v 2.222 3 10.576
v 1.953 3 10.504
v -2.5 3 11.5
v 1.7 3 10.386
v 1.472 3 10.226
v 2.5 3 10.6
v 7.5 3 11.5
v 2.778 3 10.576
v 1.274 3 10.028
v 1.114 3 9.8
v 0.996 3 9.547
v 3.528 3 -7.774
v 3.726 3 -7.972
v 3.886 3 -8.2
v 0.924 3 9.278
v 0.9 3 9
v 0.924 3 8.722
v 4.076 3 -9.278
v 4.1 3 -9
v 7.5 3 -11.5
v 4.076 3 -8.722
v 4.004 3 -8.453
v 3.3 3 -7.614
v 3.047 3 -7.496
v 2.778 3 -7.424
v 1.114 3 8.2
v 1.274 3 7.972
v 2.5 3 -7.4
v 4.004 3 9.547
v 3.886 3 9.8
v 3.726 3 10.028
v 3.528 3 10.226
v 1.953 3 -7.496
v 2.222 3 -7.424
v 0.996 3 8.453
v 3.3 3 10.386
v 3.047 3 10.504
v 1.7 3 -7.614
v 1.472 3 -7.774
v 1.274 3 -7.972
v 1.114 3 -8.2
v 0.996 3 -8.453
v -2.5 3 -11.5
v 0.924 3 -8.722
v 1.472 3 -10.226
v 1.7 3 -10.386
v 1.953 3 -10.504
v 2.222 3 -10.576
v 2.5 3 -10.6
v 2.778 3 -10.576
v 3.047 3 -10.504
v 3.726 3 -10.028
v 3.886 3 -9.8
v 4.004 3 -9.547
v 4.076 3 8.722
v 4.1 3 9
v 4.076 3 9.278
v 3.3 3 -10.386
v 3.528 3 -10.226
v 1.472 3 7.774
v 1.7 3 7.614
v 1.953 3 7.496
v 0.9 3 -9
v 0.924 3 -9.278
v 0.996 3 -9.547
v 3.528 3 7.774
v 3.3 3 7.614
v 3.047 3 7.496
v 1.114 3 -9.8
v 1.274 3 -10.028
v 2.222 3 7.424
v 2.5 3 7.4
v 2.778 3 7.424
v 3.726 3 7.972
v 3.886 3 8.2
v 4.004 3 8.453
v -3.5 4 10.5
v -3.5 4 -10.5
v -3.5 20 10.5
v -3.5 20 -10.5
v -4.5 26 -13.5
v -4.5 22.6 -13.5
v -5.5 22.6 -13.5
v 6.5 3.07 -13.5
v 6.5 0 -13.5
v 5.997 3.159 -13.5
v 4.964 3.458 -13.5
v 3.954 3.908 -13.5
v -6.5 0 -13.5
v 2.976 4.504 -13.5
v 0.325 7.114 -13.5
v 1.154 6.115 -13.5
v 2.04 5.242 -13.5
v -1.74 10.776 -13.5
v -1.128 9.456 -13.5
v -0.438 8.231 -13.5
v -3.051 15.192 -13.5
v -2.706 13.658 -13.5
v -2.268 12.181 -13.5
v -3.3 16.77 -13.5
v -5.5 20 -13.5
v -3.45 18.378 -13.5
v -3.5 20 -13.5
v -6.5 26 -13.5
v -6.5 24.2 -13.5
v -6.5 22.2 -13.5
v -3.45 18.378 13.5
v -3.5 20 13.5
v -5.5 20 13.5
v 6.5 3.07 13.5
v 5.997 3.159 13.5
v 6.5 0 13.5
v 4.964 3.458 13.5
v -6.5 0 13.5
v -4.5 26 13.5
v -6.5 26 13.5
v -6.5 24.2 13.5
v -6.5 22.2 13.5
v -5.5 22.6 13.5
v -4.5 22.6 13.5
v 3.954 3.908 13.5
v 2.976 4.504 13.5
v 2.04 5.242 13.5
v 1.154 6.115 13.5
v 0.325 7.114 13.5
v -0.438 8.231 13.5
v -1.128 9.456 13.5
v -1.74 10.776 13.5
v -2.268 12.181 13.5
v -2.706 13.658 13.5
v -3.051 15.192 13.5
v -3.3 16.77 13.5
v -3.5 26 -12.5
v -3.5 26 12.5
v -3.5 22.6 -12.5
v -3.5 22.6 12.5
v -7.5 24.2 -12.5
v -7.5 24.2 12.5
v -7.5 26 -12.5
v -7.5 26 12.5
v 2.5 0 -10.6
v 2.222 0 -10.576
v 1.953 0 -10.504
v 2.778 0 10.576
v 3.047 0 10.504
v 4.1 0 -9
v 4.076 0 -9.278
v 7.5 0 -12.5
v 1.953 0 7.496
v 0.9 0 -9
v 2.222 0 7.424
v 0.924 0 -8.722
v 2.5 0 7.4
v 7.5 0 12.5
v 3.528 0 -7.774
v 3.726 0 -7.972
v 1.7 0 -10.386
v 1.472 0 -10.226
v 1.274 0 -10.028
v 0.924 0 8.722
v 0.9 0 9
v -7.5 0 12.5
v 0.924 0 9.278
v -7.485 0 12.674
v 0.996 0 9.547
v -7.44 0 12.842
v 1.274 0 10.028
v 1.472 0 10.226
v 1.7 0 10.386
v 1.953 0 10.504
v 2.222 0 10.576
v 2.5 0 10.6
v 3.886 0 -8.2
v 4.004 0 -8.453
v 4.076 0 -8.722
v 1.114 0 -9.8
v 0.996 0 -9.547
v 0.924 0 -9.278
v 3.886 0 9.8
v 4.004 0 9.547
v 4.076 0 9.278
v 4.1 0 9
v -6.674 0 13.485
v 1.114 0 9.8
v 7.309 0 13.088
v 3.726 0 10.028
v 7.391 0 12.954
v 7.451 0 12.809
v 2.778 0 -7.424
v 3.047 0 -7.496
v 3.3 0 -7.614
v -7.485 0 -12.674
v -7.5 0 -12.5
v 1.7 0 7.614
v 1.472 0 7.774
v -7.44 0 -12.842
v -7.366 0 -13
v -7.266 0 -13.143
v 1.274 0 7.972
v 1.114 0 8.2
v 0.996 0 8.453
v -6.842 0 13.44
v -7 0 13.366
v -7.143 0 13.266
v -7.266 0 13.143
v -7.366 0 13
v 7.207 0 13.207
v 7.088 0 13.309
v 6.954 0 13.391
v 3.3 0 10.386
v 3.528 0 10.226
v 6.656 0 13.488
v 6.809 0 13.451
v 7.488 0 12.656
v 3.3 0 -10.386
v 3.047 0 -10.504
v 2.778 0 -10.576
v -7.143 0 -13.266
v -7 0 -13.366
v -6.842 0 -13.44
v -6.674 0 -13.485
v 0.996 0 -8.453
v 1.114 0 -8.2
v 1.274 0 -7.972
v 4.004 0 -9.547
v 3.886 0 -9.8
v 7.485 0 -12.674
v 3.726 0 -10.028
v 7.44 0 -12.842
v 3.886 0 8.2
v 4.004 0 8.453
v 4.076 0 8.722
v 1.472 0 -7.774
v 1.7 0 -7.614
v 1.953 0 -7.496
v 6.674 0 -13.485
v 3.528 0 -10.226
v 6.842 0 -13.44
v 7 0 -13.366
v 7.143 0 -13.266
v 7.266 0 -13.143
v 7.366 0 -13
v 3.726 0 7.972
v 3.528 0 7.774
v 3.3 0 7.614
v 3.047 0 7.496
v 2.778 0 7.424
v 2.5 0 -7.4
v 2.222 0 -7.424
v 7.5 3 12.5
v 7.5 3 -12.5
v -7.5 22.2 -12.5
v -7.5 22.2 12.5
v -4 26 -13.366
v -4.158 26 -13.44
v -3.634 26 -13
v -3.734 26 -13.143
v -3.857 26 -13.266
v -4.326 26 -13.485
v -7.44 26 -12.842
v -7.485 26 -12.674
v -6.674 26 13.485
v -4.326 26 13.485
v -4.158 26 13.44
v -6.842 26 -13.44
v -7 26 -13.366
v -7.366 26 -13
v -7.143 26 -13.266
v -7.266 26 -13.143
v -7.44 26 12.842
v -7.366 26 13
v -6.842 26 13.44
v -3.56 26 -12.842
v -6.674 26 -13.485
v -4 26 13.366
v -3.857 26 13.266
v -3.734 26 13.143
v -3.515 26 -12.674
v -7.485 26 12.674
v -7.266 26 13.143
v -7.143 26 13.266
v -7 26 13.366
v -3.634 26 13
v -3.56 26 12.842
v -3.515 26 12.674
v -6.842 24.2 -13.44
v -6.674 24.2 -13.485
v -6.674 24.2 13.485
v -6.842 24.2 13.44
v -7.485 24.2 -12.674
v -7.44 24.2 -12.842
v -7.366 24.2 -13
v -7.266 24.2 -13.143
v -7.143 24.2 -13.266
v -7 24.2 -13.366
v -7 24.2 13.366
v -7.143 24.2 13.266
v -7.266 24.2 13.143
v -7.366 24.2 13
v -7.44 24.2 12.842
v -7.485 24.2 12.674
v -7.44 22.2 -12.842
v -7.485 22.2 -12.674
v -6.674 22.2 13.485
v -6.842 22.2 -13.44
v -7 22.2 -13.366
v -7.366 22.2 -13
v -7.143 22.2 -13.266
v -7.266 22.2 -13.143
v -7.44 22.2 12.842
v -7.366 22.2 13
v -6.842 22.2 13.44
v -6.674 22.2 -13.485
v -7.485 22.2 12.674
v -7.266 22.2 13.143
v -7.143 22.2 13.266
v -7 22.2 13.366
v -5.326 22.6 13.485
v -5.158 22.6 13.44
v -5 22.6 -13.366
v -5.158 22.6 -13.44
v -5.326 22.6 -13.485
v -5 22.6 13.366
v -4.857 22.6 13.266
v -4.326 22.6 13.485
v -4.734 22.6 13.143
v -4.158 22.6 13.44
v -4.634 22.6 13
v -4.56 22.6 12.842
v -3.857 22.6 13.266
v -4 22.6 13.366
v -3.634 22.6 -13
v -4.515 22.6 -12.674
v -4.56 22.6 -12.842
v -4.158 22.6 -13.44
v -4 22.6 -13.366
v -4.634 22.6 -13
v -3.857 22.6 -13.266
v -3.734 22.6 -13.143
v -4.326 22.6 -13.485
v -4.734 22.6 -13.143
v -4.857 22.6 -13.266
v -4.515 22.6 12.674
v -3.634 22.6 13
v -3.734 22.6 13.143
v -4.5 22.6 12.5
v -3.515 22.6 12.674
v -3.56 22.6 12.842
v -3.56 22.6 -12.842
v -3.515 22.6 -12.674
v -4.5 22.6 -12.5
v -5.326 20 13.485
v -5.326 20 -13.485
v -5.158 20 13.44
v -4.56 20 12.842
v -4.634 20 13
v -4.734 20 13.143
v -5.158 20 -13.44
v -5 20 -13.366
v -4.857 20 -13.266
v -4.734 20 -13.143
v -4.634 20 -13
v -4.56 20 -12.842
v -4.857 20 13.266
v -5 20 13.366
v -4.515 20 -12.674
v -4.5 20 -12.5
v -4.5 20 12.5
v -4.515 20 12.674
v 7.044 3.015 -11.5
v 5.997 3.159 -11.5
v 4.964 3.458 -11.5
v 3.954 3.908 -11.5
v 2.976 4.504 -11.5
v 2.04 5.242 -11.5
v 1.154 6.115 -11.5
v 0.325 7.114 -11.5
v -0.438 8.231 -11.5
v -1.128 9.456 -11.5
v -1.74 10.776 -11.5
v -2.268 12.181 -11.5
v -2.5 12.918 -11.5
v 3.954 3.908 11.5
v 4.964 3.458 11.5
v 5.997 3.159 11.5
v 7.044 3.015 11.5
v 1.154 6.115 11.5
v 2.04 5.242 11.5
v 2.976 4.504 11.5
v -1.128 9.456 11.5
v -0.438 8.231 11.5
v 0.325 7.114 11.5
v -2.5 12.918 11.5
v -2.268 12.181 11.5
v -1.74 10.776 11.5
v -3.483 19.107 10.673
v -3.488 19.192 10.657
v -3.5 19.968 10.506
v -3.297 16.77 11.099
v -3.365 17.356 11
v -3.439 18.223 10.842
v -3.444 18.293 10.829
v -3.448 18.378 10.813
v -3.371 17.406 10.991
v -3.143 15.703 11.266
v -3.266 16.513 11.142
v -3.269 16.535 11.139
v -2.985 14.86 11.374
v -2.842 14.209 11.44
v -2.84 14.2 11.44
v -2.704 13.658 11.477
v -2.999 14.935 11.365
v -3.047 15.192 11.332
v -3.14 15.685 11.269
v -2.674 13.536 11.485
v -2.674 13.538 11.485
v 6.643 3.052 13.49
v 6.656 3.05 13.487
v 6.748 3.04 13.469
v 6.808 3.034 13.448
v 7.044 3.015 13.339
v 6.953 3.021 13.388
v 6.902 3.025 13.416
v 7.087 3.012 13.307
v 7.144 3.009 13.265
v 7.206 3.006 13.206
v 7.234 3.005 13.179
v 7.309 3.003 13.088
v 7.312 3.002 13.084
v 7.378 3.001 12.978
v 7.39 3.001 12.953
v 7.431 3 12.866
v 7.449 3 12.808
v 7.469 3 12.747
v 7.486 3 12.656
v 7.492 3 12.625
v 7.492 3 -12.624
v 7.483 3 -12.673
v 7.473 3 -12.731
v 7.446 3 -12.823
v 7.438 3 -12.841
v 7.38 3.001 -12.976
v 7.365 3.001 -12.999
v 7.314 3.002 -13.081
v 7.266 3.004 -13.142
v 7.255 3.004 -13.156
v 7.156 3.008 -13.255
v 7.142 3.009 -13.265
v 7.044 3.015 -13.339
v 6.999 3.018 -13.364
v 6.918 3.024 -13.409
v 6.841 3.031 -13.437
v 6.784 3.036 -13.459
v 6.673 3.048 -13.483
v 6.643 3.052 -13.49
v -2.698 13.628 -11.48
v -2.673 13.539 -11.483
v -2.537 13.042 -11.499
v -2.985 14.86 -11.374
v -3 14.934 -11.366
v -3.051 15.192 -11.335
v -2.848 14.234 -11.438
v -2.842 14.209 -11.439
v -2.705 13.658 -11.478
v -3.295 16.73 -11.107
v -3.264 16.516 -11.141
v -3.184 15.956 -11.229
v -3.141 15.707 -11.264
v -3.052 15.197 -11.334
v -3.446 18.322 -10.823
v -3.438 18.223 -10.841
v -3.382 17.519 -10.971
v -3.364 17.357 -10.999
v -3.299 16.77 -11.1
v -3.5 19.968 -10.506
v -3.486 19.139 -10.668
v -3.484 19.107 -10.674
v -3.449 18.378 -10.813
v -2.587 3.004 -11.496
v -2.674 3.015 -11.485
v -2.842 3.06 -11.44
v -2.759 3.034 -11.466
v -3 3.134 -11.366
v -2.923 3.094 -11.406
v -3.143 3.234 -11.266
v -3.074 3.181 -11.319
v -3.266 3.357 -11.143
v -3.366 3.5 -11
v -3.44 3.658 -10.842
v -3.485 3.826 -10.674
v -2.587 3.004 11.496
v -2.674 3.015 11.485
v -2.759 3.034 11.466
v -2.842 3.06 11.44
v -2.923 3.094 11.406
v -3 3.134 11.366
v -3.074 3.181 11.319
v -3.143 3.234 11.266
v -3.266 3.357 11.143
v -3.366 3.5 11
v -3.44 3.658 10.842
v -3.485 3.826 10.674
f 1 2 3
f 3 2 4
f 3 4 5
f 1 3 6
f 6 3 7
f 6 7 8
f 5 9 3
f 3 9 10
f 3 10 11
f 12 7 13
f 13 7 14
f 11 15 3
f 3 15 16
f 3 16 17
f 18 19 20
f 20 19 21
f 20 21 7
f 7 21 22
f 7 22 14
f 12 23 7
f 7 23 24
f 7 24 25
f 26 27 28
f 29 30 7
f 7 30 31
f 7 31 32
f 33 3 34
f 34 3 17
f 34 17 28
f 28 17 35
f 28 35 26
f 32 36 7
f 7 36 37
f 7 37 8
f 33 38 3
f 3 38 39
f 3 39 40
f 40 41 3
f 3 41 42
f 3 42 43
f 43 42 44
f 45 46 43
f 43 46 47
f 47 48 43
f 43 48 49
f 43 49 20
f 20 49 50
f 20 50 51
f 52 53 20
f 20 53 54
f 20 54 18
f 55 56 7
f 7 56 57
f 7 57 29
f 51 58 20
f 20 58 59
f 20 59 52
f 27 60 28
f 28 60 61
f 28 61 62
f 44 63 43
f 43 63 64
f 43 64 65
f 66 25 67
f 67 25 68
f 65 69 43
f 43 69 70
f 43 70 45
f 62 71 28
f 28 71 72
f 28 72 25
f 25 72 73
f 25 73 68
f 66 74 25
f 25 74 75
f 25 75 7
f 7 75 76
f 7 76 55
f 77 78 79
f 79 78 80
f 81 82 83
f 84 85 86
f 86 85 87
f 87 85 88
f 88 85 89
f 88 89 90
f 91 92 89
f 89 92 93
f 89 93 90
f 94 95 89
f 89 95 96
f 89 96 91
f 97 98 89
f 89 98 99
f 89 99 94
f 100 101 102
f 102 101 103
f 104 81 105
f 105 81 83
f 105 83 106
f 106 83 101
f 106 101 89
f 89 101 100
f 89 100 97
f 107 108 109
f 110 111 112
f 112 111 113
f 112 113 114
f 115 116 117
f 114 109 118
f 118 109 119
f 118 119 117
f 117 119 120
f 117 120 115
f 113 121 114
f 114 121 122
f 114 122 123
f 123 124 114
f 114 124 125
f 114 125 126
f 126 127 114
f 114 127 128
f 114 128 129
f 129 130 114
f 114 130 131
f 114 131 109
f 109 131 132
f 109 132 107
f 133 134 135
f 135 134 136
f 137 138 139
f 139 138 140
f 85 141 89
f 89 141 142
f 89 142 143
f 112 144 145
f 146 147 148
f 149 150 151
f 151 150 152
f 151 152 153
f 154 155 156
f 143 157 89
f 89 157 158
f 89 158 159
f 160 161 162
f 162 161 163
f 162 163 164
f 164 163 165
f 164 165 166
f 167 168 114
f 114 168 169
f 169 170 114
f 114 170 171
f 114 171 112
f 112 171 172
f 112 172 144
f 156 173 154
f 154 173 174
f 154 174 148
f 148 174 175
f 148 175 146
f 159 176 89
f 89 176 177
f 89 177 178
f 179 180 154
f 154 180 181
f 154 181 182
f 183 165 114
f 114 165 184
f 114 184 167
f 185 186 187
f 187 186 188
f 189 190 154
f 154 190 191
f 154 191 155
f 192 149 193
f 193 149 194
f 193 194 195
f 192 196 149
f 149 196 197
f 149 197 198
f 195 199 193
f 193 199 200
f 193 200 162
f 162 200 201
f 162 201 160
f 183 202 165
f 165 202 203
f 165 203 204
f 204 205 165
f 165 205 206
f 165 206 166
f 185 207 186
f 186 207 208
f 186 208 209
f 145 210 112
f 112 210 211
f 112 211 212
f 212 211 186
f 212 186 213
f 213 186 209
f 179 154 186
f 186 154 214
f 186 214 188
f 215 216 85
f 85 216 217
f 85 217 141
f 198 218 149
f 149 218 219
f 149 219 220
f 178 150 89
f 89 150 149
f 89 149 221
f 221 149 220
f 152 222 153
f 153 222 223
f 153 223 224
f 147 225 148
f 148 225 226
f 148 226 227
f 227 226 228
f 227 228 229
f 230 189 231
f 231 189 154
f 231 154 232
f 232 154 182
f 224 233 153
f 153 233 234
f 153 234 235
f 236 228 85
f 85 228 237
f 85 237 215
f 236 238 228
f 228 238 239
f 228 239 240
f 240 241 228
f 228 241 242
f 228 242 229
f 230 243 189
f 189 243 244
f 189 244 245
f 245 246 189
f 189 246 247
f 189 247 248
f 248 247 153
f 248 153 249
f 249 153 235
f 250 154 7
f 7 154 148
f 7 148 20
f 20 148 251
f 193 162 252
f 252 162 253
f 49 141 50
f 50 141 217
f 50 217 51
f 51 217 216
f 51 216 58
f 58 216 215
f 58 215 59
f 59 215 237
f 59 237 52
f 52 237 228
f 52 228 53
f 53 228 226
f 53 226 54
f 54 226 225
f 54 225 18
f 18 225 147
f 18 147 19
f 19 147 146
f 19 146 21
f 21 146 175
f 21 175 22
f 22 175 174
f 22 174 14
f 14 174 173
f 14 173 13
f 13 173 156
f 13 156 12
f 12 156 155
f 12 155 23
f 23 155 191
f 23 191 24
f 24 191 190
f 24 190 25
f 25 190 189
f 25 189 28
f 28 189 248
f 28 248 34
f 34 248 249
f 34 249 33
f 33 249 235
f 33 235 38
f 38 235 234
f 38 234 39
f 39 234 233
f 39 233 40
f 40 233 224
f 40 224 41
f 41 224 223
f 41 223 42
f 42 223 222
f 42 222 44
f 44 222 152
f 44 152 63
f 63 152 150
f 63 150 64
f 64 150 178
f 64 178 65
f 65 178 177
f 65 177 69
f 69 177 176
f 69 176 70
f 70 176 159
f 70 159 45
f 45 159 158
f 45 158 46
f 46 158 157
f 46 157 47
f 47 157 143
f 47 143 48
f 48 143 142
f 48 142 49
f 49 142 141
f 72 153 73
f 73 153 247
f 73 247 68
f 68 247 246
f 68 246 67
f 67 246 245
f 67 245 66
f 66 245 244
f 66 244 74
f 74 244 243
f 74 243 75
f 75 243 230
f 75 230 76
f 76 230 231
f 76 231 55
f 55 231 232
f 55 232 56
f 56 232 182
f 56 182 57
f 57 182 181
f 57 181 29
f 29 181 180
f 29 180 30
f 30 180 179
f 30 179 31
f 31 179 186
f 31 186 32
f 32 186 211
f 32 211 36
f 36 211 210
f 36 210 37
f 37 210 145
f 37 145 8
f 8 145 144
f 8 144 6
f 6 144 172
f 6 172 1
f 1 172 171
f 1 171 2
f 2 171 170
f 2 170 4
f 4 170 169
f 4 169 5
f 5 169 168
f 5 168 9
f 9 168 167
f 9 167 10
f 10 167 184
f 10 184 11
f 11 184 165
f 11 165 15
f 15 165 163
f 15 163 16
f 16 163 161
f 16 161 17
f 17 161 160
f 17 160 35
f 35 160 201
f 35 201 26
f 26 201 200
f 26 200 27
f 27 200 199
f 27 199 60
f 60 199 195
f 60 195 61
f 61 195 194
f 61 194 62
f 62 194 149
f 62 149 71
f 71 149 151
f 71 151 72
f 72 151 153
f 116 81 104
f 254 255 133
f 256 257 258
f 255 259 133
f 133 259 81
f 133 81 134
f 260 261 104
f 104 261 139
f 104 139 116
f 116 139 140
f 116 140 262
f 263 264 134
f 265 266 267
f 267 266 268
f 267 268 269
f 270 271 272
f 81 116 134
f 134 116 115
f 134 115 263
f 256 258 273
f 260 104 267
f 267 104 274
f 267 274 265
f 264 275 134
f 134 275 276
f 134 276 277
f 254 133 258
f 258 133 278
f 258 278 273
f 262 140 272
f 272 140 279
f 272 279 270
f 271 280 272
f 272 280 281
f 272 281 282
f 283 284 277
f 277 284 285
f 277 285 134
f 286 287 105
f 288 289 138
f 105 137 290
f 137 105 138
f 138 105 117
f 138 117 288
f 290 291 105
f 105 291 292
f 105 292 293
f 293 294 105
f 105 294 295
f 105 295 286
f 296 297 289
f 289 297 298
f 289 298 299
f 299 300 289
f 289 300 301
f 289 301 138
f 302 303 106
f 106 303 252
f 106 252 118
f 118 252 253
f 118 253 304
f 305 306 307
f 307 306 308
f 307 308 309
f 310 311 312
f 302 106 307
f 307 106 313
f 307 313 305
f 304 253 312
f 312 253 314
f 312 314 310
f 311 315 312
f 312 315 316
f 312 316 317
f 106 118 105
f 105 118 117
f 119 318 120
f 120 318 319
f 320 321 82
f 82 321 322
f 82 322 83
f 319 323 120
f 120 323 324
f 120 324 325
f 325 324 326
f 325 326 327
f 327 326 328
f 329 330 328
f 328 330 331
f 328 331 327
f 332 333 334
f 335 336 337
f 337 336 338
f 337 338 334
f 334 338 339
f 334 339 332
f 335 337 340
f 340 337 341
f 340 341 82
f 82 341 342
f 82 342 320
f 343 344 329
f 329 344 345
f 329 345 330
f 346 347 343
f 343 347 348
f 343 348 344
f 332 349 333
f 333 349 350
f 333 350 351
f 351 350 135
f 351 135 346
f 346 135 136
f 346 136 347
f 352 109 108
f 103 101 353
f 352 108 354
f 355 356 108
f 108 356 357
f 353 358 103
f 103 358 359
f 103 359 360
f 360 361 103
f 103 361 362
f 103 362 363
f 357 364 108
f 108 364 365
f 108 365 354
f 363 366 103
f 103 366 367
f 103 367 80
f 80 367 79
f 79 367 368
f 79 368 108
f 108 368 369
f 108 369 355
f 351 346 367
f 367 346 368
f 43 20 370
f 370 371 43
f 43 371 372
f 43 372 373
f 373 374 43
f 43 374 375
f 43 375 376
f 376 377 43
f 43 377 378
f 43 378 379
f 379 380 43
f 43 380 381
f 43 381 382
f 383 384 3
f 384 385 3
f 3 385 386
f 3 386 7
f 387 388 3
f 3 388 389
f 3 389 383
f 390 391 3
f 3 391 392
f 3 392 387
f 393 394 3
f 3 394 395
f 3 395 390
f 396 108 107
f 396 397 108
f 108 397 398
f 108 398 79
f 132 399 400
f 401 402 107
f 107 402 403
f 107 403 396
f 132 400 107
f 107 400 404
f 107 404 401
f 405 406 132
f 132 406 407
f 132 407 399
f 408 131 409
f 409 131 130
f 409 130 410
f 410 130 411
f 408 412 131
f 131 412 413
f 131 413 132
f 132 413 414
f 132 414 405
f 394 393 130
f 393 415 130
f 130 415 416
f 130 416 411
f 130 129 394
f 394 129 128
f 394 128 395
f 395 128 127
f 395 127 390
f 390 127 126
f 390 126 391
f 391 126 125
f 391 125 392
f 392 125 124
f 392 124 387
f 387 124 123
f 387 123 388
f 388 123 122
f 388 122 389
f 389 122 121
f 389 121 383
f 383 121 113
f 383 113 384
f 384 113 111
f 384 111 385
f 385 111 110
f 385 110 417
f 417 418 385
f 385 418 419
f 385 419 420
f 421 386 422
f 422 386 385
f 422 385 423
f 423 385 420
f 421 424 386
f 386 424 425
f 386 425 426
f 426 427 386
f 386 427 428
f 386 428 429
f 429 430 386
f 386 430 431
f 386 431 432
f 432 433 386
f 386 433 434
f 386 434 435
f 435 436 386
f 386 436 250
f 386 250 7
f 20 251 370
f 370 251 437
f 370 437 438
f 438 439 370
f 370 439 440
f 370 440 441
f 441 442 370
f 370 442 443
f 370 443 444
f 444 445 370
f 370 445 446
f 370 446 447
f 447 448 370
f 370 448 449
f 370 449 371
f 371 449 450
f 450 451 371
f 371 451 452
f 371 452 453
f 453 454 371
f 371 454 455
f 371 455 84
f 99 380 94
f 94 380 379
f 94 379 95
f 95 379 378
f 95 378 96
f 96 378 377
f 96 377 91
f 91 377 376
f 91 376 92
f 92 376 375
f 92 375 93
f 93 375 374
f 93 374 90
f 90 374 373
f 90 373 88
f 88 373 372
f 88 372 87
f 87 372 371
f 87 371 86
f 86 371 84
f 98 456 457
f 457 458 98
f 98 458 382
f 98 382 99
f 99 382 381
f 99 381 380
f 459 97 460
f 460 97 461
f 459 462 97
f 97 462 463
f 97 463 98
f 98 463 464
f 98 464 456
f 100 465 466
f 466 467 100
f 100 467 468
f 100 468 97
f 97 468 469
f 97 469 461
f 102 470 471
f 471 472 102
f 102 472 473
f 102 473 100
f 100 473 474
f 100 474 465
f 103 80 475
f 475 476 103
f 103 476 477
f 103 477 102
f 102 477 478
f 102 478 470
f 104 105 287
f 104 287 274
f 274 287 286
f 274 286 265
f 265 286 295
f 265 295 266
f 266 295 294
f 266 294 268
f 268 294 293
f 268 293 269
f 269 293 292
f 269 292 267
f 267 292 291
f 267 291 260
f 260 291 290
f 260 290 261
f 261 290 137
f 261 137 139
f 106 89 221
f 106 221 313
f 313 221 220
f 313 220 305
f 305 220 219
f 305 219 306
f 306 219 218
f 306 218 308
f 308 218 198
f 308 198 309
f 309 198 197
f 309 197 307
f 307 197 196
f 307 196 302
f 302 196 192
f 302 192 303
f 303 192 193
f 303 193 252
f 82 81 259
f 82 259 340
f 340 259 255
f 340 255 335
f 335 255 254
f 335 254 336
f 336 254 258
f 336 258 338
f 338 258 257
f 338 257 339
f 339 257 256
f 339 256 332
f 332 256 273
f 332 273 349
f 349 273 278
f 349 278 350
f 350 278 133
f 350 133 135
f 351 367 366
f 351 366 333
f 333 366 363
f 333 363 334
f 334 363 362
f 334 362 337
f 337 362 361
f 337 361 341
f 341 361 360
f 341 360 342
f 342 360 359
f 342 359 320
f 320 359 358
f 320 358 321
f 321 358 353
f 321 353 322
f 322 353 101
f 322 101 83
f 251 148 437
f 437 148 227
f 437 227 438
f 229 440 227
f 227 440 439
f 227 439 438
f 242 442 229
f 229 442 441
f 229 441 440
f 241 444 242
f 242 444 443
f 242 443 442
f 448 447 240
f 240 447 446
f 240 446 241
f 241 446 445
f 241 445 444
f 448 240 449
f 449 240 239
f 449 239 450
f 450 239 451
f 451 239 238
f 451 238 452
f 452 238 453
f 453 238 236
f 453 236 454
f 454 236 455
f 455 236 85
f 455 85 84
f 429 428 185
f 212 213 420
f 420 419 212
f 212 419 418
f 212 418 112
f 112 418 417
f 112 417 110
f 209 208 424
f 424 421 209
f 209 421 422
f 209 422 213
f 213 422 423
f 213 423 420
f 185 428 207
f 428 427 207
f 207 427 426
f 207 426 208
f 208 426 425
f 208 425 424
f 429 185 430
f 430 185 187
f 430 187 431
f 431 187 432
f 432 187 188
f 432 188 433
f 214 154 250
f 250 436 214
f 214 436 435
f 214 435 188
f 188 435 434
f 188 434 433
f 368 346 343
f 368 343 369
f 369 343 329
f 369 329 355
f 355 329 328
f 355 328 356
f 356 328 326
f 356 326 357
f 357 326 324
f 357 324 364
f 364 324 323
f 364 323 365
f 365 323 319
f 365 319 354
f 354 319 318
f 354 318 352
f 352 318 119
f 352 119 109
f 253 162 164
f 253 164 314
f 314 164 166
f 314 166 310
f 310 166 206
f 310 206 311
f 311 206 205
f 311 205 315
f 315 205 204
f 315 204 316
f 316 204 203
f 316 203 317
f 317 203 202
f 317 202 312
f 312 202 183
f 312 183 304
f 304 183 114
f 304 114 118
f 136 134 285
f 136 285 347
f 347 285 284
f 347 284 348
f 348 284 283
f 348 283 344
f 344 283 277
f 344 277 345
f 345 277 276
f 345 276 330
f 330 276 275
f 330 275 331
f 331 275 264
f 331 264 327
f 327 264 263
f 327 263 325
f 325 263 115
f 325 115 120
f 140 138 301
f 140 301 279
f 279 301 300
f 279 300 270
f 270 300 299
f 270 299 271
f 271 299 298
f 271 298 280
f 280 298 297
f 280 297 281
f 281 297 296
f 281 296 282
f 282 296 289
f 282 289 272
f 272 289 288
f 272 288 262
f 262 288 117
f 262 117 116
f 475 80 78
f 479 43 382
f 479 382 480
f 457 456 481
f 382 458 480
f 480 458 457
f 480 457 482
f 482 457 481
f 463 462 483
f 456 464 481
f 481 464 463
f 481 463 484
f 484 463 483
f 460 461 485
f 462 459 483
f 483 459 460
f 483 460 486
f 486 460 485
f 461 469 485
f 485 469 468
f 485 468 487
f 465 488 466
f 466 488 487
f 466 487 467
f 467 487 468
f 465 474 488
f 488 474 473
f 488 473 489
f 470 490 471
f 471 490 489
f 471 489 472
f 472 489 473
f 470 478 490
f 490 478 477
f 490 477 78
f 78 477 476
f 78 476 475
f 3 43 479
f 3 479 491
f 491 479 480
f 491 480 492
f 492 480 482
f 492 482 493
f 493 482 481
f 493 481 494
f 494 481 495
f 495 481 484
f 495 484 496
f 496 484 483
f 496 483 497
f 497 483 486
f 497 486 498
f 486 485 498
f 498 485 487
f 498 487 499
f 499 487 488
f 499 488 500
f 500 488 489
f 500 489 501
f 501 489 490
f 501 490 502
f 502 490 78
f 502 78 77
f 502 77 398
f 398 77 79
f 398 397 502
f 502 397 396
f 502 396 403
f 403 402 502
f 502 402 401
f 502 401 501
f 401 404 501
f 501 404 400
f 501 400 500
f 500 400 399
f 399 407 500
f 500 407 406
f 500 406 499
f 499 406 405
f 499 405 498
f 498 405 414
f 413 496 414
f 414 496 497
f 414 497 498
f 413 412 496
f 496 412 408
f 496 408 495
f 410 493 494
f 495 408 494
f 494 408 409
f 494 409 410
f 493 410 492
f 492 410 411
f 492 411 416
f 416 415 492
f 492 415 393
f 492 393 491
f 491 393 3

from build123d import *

# Parameters (mm, degrees)
SKETCH1_W               = 15
SKETCH1_H               = 27
SKETCH1_R               = 1.6
BOSS_EXTRUDE1_DEPTH     = 3
SKETCH2_W               = 4
SKETCH2_H               = 27
BOSS_EXTRUDE2_DEPTH     = 23
SKETCH3_W               = 27
SKETCH3_H               = 2
CUT_EXTRUDE1_DEPTH      = 1
SKETCH4_W               = 27
SKETCH4_H               = 2.6
CUT_EXTRUDE2_DEPTH      = 1
SKETCH5_W               = 11
SKETCH5_H               = 2
BOSS_EXTRUDE3_DEPTH     = 17
CUT_EXTRUDE3_DEPTH      = 37.84087404
CUT_EXTRUDE3_DEPTH_BACK = 37.84087404
SKETCH7_RX              = 17
SKETCH7_RY              = 11
FILLET2_R               = 1
FILLET3_START           = -11.5
FILLET3_DEPTH           = 23
FILLET3_START_2         = 2
FILLET3_2_DEPTH         = 18
FILLET3_3_DEPTH         = 23


with BuildPart() as part:
    # Sketch1 → Boss-Extrude1 (new body)
    with BuildSketch(Plane(origin=(0, 0, 0), x_dir=(1, 0, 0), z_dir=(0, 1, 0))):
        Rectangle(SKETCH1_W, SKETCH1_H)
        with Locations(Location((2.5, 9, 0), (0, 0, 270))):
            Circle(SKETCH1_R, mode=Mode.SUBTRACT)
        with Locations(Location((2.5, -9, 0), (0, 0, 90))):
            Circle(SKETCH1_R, mode=Mode.SUBTRACT)
    extrude(amount=BOSS_EXTRUDE1_DEPTH)

    # Sketch2 → Boss-Extrude2 (add)
    with BuildSketch(Plane(origin=(0, 3, 0), x_dir=(1, 0, 0), z_dir=(0, 1, 0))):
        with Locations((-5.5, 0)):
            Rectangle(SKETCH2_W, SKETCH2_H)
    extrude(amount=BOSS_EXTRUDE2_DEPTH)

    # Sketch3 → Cut-Extrude1 (cut)
    with BuildSketch(Plane.ZY.offset(7.5)):
        with Locations((0, 23.2)):
            Rectangle(SKETCH3_W, SKETCH3_H)
    extrude(amount=-CUT_EXTRUDE1_DEPTH, mode=Mode.SUBTRACT)

    # Sketch4 → Cut-Extrude2 (cut)
    with BuildSketch(Plane(origin=(-3.5, 0, 0), x_dir=(0, 0, -1), z_dir=(1, 0, 0))):
        with Locations((0, 21.3)):
            Rectangle(SKETCH4_W, SKETCH4_H)
    extrude(amount=-CUT_EXTRUDE2_DEPTH, mode=Mode.SUBTRACT)

    # Sketch5 → Boss-Extrude3 (add)
    with BuildSketch(Plane(origin=(0, 3, 0), x_dir=(1, 0, 0), z_dir=(0, 1, 0))):
        with Locations((2, 12.5)):
            Rectangle(SKETCH5_W, SKETCH5_H)
        with Locations((2, -12.5)):
            Rectangle(SKETCH5_W, SKETCH5_H)
    extrude(amount=BOSS_EXTRUDE3_DEPTH)

    # Sketch7 → Cut-Extrude3 (cut, two sides: drawn at the far end of the back side and taken through both)
    with BuildSketch(Plane.XY.offset(-11.5).offset(-CUT_EXTRUDE3_DEPTH_BACK)):
        with Locations(Location((7.5, 20), (0, 0, 90))):
            Ellipse(SKETCH7_RX, SKETCH7_RY)
    extrude(amount=CUT_EXTRUDE3_DEPTH + CUT_EXTRUDE3_DEPTH_BACK, mode=Mode.SUBTRACT)

    # Fillet2
    fillet2_edges = [part.edges().sort_by_distance(p)[0] for p in [
        (-7.5, 25.1, 13.5),
        (-7.5, 11.1, 13.5),
        (7.5, 1.5, 13.5),
        (-4.5, 21.3, 13.5),
        (-3.5, 24.3, 13.5),
        (-7.5, 25.1, -13.5),
        (-7.5, 11.1, -13.5),
        (7.5, 1.5, -13.5),
        (-4.5, 21.3, -13.5),
        (-3.5, 24.3, -13.5),
    ]]
    fillet(fillet2_edges, radius=FILLET2_R - 0.0001)  # a hair under: the kernel refuses the full size

    # Fillet3: read off the stored shape, not the designer's step
    # Fillet3 outline → Fillet3 (add)
    with BuildSketch(Plane.XY.offset(FILLET3_START)):
        with BuildLine():
            ThreePointArc((-2.5, 3), (-3.207106781, 3.292893219), (-3.5, 4))
            Line((-3.5, 4), (-3.5, 3))
            Line((-3.5, 3), (-2.5, 3))
        make_face()
    extrude(amount=FILLET3_DEPTH)

    # Fillet3 2 outline → Fillet3 2 (add)
    with BuildSketch(Plane(origin=(0, 0, 0), x_dir=(1, 0, 0), z_dir=(0, 1, 0)).offset(FILLET3_START_2)):
        with BuildLine():
            Line((-3.5, 11.5), (-3.5, 10.5))
            ThreePointArc((-3.5, 10.5), (-3.207106781, 11.207106781), (-2.5, 11.5))
            Line((-2.5, 11.5), (-3.5, 11.5))
        make_face()
        with BuildLine():
            ThreePointArc((-2.5, -11.5), (-3.207106781, -11.207106781), (-3.5, -10.5))
            Line((-3.5, -10.5), (-3.5, -11.5))
            Line((-3.5, -11.5), (-2.5, -11.5))
        make_face()
    extrude(amount=FILLET3_2_DEPTH)

    # Fillet3 3 outline → Fillet3 3 (cut)
    with BuildSketch(Plane.XY.offset(FILLET3_START)):
        with BuildLine():
            Line((-2.5, 20), (-3.5, 20))
            add(Edge.make_bspline(
                [(-3.5, 20), (-3.5, 16.290295866), (-2.5, 12.917837562)],
                knots=[4.71238898, 4.71238898, 4.71238898, 5.142088647, 5.142088647, 5.142088647], degree=2, weights=[1, 0.977008421, 1]))
            Line((-2.5, 12.917837562), (-2.5, 20))
        make_face()
    extrude(amount=FILLET3_3_DEPTH, mode=Mode.SUBTRACT)


solid = part.part
